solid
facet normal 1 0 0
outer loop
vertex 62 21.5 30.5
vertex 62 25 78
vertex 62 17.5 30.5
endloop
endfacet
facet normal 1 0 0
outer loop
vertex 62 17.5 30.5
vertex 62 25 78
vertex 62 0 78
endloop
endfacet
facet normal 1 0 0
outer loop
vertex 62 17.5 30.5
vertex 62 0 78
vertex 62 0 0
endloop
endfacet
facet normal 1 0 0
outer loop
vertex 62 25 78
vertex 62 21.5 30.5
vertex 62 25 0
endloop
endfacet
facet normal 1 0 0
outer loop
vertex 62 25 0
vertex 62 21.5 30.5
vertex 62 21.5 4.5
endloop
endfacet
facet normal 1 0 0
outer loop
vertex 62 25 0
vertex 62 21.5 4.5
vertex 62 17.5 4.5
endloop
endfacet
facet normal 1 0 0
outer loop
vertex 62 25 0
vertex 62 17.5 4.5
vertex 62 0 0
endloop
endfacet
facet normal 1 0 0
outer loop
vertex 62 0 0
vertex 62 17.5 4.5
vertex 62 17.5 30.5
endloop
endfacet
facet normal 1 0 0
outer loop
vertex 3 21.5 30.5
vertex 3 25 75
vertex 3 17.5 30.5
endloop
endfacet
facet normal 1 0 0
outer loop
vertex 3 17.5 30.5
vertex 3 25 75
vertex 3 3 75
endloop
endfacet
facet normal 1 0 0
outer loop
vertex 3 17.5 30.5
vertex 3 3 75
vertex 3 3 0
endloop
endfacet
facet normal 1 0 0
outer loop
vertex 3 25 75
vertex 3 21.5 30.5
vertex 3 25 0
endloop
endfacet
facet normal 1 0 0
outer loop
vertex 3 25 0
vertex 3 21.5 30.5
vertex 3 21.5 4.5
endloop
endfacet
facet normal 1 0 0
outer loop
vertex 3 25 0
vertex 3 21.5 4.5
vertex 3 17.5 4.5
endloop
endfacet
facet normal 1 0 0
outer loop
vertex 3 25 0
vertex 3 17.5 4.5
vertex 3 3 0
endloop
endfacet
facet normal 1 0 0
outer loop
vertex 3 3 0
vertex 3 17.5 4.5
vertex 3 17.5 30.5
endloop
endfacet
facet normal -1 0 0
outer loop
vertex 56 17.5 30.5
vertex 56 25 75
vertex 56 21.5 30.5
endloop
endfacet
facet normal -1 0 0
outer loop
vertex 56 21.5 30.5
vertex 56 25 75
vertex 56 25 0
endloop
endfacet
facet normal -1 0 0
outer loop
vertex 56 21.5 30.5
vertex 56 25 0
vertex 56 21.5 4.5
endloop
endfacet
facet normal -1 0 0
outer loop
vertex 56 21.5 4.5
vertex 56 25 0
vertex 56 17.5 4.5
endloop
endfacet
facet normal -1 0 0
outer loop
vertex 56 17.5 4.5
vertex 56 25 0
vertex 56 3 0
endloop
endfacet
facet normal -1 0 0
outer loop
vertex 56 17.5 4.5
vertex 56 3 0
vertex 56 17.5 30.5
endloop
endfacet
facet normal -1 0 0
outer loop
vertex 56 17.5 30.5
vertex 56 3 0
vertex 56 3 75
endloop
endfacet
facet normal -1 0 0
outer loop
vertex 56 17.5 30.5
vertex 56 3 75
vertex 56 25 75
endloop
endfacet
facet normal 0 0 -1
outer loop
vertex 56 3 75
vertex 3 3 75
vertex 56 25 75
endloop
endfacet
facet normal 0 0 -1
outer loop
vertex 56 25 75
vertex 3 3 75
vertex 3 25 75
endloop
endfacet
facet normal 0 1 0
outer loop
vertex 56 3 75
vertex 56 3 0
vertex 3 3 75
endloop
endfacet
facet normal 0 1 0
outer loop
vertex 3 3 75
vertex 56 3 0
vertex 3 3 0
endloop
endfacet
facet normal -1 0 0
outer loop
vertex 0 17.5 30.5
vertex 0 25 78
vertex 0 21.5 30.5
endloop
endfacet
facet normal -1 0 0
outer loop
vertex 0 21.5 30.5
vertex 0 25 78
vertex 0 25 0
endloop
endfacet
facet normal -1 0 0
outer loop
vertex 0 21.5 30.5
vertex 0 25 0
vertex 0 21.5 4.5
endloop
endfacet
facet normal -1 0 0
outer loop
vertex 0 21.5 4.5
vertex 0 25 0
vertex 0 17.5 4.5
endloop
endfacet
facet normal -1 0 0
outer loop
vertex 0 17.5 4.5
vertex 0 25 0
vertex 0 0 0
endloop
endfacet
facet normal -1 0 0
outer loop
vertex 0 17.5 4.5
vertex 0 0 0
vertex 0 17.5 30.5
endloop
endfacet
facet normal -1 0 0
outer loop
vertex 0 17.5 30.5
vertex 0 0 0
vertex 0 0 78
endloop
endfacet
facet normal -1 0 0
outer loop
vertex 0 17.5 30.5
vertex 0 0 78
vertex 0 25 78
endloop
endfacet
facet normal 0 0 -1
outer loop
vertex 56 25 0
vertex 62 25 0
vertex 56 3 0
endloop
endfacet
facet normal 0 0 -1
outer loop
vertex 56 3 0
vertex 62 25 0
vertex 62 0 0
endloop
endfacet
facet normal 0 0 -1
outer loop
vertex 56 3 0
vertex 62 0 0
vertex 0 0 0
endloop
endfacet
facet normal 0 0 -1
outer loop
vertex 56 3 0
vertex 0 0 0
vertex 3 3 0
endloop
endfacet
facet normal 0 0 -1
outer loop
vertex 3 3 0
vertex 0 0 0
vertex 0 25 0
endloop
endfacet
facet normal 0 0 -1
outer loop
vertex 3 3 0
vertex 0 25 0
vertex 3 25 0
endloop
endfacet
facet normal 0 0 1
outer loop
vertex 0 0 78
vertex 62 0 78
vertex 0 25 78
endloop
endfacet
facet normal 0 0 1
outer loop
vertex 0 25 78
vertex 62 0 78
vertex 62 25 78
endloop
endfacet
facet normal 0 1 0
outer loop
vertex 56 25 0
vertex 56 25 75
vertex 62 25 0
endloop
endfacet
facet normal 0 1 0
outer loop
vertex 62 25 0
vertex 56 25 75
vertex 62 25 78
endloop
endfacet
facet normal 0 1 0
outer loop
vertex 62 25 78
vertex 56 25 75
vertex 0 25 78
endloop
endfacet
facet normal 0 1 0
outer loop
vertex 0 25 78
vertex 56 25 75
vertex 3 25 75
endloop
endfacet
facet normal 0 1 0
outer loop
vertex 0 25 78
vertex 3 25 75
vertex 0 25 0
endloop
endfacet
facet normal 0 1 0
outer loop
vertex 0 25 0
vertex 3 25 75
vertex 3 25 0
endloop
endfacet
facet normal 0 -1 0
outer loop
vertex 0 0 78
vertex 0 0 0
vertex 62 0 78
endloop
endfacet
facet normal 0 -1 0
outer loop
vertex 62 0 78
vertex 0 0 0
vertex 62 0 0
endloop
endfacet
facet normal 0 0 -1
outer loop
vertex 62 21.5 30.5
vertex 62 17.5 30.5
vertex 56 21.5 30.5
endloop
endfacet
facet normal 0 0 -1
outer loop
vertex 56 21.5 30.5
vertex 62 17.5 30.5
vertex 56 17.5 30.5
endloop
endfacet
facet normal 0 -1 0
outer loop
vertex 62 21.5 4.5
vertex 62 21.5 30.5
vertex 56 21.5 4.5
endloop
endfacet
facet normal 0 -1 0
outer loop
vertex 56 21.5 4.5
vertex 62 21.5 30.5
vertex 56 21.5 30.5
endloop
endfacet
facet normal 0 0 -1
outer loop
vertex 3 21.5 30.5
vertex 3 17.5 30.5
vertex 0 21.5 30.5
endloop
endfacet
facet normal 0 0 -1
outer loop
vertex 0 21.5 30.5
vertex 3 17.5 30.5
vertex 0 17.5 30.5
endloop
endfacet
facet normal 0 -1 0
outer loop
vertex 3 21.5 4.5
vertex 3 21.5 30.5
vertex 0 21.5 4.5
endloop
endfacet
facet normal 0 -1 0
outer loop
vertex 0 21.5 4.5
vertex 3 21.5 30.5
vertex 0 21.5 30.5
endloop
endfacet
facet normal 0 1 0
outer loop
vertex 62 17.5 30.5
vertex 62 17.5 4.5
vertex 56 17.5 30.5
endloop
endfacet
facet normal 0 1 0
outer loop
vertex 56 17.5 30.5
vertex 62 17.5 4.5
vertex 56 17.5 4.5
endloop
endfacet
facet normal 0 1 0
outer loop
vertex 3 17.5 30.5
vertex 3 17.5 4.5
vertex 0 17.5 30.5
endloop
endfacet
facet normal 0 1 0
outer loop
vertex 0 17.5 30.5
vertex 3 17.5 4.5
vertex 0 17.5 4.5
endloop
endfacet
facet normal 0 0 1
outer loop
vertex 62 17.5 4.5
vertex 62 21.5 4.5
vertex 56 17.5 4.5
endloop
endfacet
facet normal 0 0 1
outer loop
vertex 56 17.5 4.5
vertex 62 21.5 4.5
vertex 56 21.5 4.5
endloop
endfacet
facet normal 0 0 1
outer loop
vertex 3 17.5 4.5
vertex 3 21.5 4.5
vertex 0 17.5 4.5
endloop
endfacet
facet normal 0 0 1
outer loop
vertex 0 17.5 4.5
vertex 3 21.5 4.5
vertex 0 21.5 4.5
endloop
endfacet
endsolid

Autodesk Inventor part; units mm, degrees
ref_plane "YZ Plane" through (0, 0, 0) normal (1, 0, 0) x (0, 1, 0)
ref_plane "XZ Plane" through (0, 0, 0) normal (0, 1, 0) x (-1, 0, 0)
ref_plane "XY Plane" through (0, 0, 0) normal (0, 0, 1) x (1, 0, 0)
sketch "Sketch2" plane through (0, 0, 0) normal (0, 1, 0) x (-1, 0, 0)
  line L0 (0, 0) -> (-59, 0)
  line L1 (-59, 0) -> (-59, 78)
  line L2 (-59, 78) -> (0, 78)
  line L3 (0, 78) -> (0, 0)
  dimension "d0" = 59
  dimension "d1" = 78
extrude "Extrusion1" add sketch "Sketch2" along normal blind 25
shell "Shell1" thickness 3 removed faces 1 at (39.3333, 25, 52)
sketch "Sketch4" plane through (59, 0, 0) normal (0, 0, -1) x (-1, 0, 0)
  point P0 (59, 0)
sketch "Sketch5" plane through (3, 3, 3) normal (0, 0, 1) x (1, 0, 0)
  line L0 (0, 0) -> (0, 22) projected
  line L1 (0, 22) -> (53, 22) projected
  line L2 (0, 0) -> (53, 0)
  line L3 (53, 0) -> (53, 22)
  line L4 (53, 22) -> (0, 22)
  line L5 (0, 22) -> (0, 0)
  point P0 (-3, -3)
extrude "Extrusion3" cut sketch "Sketch5" against normal blind 10
sketch "Sketch6" plane through (0, 0, 0) normal (-1, 0, 0) x (0, 0, 1)
  line L0 (4.5, 21.5) -> (30.5, 21.5)
  line L1 (30.5, 21.5) -> (30.5, 17.5)
  line L2 (30.5, 17.5) -> (4.5, 17.5)
  line L3 (4.5, 17.5) -> (4.5, 21.5)
  line L4 (0, 0) -> (0, 25) projected
  line L5 (0, 0) -> (78, 0) projected
  dimension "d19" = 26
  dimension "d20" = 4
  dimension "d21" = 4.5
  dimension "d22" = 17.5
sketch "Sketch7" plane through (59, 0, 78) normal (1, 0, 0) x (0, 0, -1)
  line L0 (0, 0) -> (78, 0) projected
  line L1 (0, 25) -> (78, 25)
  line L2 (78, 25) -> (78, 0)
  line L3 (78, 0) -> (0, 0)
  line L4 (0, 0) -> (0, 25)
extrude "Extrusion5" add sketch "Sketch7" along normal blind 3
extrude "Extrusion6" cut sketch "Sketch6" against normal through all
properties part number "arduino array box v05"
